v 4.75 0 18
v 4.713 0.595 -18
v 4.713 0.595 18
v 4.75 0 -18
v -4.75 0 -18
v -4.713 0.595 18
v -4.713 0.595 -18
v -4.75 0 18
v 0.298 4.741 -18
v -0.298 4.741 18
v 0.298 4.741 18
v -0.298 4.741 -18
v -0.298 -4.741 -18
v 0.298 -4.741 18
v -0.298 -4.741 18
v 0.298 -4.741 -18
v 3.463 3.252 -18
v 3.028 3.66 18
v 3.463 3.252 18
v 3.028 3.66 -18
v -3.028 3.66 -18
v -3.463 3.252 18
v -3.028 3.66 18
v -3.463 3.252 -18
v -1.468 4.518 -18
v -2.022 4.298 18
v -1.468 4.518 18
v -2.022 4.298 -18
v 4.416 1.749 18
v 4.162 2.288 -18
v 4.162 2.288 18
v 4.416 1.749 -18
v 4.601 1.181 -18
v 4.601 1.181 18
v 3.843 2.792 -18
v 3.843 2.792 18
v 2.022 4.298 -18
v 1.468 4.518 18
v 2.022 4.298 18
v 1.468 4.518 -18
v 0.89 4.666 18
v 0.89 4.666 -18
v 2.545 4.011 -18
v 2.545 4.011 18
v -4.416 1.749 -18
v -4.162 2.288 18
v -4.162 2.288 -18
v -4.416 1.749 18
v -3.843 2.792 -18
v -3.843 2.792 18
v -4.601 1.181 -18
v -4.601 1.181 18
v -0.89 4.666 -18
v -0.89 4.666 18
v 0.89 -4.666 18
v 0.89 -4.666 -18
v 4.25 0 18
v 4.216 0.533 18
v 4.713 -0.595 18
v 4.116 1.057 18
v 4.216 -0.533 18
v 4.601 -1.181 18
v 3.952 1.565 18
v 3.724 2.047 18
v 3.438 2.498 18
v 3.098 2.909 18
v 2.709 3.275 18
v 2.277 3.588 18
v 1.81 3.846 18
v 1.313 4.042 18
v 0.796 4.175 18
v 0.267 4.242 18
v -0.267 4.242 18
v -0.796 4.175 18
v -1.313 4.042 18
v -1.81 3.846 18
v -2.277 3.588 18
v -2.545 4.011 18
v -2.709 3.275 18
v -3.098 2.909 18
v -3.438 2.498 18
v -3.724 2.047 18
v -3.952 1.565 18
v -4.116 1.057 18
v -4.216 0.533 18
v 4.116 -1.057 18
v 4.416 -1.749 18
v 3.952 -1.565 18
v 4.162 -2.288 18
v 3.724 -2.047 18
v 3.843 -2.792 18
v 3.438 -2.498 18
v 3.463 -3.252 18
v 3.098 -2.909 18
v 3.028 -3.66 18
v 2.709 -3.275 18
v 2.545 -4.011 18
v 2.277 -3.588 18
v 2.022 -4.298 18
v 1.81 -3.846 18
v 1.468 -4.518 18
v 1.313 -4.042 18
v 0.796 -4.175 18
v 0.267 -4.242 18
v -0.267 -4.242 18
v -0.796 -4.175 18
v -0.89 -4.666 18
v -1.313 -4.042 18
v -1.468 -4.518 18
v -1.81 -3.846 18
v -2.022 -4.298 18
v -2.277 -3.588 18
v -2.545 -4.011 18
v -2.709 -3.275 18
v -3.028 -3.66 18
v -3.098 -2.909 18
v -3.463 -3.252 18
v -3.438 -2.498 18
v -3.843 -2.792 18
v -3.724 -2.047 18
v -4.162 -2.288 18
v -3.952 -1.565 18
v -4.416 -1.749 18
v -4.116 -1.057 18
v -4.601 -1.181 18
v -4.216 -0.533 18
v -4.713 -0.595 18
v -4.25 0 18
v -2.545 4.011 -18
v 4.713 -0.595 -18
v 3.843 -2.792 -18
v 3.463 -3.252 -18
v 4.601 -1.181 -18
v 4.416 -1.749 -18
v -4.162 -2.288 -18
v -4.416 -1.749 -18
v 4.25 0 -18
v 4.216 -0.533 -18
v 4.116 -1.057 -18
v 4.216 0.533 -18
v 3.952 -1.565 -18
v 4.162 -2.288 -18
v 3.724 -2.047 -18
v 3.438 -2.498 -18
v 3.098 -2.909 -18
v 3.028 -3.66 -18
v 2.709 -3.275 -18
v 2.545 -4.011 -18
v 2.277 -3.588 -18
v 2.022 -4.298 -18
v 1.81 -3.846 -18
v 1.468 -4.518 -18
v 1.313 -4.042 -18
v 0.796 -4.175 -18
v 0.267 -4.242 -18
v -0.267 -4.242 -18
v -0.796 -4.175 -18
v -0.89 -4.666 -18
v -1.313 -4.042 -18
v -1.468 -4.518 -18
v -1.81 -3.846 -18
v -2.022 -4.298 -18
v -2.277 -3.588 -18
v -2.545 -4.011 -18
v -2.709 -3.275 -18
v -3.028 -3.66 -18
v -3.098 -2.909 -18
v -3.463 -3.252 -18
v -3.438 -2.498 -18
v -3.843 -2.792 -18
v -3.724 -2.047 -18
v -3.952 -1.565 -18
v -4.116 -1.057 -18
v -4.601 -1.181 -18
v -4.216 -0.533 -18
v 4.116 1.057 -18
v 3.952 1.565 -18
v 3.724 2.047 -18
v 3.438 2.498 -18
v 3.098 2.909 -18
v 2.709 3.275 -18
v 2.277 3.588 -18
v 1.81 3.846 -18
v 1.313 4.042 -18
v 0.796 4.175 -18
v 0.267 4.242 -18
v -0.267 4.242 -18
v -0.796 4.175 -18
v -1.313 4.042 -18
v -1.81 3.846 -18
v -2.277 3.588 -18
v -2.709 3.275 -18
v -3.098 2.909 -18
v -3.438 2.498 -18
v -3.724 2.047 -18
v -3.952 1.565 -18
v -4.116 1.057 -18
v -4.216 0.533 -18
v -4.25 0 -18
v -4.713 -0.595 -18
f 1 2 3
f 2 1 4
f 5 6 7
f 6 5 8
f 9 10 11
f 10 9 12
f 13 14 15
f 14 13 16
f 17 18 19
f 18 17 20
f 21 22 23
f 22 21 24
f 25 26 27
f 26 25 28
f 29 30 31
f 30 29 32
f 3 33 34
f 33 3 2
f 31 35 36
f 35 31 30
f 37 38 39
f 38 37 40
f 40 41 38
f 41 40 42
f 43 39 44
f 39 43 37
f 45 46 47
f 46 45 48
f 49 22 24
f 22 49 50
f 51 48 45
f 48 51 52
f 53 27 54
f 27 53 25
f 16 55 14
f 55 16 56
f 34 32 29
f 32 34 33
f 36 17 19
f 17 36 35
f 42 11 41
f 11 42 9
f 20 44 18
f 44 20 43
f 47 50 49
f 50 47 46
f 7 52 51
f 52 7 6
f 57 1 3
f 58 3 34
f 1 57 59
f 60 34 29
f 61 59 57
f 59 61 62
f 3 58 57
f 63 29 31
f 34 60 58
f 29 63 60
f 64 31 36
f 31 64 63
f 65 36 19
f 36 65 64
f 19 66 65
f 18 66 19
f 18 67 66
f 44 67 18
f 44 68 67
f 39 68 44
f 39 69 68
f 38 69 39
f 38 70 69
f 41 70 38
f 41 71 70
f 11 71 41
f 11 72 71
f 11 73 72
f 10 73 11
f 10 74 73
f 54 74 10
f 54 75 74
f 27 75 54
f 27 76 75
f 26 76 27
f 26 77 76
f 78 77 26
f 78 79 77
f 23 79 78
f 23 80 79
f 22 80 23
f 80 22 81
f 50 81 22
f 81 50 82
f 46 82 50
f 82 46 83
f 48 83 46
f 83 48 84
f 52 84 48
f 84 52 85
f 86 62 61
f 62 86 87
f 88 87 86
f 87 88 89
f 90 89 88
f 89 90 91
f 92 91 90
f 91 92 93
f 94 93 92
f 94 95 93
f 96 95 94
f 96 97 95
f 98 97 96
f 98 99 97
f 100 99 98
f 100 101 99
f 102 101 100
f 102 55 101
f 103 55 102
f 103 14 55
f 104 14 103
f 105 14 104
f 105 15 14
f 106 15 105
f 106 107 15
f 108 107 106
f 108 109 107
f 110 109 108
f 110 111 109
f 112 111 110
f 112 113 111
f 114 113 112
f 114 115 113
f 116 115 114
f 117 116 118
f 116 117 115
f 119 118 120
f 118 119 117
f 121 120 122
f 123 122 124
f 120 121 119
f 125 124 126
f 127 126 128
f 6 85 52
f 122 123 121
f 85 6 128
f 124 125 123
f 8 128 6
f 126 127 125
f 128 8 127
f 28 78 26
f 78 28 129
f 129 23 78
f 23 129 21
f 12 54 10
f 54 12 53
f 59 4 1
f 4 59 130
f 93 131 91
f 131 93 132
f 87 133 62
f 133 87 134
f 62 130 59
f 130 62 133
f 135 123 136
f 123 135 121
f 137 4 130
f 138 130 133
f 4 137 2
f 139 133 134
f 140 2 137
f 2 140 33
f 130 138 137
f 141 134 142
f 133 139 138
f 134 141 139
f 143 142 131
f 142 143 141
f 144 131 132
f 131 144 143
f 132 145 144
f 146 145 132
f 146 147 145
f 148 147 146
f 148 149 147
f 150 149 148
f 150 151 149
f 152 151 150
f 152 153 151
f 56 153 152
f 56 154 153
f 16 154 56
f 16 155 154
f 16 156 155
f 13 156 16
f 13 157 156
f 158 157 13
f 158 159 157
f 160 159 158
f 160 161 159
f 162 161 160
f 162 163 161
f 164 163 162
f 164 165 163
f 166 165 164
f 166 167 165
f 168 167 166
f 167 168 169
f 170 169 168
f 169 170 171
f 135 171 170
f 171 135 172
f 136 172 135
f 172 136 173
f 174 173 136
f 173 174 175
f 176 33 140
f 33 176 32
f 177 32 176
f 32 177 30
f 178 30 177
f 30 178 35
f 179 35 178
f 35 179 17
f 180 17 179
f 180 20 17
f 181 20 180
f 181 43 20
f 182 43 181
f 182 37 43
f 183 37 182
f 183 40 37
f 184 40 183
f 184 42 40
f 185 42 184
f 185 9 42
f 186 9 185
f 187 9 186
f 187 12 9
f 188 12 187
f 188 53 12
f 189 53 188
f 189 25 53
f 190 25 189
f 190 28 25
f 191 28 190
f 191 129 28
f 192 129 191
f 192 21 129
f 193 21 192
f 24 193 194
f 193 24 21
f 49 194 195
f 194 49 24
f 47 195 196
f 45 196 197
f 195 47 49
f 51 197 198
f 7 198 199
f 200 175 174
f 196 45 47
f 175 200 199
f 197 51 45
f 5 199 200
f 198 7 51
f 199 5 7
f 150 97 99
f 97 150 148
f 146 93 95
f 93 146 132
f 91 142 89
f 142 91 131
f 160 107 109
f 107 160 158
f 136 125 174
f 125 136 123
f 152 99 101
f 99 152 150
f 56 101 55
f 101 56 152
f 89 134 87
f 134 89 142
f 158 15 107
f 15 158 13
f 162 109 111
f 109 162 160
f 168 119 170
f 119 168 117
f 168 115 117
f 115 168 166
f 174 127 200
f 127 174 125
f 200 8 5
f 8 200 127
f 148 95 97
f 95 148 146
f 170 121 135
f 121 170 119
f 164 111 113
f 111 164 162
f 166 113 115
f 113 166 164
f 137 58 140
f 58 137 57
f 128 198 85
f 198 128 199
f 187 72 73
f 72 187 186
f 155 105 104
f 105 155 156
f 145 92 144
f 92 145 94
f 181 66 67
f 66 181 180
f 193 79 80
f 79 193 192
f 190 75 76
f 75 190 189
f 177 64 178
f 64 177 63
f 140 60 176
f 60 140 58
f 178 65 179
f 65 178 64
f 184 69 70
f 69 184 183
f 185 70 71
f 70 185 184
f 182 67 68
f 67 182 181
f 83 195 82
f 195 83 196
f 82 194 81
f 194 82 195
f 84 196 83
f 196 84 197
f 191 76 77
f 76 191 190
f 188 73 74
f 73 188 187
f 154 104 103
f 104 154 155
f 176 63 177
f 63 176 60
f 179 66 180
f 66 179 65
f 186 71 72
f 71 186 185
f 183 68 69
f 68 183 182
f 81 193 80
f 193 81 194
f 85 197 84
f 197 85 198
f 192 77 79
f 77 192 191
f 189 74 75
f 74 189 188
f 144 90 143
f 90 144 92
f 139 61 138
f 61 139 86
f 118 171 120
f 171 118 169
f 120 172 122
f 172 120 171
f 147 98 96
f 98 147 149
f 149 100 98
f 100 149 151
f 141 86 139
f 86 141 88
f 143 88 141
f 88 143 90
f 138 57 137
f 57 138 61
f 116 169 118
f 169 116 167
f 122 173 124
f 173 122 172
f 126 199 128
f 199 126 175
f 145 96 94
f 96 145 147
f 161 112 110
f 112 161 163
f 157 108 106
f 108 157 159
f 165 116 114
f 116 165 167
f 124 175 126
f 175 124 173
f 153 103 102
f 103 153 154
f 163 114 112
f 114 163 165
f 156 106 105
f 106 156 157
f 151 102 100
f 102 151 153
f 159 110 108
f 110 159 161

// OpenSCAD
$fn = 50;


difference() {
	union() {
		translate(v = [0, 0, -18.0000000000]) {
			cylinder(h = 36, r = 4.7500000000);
		}
	}
	union() {
		translate(v = [0, 0, -100.0000000000]) {
			cylinder(h = 200, r = 4.2500000000);
		}
	}
}
